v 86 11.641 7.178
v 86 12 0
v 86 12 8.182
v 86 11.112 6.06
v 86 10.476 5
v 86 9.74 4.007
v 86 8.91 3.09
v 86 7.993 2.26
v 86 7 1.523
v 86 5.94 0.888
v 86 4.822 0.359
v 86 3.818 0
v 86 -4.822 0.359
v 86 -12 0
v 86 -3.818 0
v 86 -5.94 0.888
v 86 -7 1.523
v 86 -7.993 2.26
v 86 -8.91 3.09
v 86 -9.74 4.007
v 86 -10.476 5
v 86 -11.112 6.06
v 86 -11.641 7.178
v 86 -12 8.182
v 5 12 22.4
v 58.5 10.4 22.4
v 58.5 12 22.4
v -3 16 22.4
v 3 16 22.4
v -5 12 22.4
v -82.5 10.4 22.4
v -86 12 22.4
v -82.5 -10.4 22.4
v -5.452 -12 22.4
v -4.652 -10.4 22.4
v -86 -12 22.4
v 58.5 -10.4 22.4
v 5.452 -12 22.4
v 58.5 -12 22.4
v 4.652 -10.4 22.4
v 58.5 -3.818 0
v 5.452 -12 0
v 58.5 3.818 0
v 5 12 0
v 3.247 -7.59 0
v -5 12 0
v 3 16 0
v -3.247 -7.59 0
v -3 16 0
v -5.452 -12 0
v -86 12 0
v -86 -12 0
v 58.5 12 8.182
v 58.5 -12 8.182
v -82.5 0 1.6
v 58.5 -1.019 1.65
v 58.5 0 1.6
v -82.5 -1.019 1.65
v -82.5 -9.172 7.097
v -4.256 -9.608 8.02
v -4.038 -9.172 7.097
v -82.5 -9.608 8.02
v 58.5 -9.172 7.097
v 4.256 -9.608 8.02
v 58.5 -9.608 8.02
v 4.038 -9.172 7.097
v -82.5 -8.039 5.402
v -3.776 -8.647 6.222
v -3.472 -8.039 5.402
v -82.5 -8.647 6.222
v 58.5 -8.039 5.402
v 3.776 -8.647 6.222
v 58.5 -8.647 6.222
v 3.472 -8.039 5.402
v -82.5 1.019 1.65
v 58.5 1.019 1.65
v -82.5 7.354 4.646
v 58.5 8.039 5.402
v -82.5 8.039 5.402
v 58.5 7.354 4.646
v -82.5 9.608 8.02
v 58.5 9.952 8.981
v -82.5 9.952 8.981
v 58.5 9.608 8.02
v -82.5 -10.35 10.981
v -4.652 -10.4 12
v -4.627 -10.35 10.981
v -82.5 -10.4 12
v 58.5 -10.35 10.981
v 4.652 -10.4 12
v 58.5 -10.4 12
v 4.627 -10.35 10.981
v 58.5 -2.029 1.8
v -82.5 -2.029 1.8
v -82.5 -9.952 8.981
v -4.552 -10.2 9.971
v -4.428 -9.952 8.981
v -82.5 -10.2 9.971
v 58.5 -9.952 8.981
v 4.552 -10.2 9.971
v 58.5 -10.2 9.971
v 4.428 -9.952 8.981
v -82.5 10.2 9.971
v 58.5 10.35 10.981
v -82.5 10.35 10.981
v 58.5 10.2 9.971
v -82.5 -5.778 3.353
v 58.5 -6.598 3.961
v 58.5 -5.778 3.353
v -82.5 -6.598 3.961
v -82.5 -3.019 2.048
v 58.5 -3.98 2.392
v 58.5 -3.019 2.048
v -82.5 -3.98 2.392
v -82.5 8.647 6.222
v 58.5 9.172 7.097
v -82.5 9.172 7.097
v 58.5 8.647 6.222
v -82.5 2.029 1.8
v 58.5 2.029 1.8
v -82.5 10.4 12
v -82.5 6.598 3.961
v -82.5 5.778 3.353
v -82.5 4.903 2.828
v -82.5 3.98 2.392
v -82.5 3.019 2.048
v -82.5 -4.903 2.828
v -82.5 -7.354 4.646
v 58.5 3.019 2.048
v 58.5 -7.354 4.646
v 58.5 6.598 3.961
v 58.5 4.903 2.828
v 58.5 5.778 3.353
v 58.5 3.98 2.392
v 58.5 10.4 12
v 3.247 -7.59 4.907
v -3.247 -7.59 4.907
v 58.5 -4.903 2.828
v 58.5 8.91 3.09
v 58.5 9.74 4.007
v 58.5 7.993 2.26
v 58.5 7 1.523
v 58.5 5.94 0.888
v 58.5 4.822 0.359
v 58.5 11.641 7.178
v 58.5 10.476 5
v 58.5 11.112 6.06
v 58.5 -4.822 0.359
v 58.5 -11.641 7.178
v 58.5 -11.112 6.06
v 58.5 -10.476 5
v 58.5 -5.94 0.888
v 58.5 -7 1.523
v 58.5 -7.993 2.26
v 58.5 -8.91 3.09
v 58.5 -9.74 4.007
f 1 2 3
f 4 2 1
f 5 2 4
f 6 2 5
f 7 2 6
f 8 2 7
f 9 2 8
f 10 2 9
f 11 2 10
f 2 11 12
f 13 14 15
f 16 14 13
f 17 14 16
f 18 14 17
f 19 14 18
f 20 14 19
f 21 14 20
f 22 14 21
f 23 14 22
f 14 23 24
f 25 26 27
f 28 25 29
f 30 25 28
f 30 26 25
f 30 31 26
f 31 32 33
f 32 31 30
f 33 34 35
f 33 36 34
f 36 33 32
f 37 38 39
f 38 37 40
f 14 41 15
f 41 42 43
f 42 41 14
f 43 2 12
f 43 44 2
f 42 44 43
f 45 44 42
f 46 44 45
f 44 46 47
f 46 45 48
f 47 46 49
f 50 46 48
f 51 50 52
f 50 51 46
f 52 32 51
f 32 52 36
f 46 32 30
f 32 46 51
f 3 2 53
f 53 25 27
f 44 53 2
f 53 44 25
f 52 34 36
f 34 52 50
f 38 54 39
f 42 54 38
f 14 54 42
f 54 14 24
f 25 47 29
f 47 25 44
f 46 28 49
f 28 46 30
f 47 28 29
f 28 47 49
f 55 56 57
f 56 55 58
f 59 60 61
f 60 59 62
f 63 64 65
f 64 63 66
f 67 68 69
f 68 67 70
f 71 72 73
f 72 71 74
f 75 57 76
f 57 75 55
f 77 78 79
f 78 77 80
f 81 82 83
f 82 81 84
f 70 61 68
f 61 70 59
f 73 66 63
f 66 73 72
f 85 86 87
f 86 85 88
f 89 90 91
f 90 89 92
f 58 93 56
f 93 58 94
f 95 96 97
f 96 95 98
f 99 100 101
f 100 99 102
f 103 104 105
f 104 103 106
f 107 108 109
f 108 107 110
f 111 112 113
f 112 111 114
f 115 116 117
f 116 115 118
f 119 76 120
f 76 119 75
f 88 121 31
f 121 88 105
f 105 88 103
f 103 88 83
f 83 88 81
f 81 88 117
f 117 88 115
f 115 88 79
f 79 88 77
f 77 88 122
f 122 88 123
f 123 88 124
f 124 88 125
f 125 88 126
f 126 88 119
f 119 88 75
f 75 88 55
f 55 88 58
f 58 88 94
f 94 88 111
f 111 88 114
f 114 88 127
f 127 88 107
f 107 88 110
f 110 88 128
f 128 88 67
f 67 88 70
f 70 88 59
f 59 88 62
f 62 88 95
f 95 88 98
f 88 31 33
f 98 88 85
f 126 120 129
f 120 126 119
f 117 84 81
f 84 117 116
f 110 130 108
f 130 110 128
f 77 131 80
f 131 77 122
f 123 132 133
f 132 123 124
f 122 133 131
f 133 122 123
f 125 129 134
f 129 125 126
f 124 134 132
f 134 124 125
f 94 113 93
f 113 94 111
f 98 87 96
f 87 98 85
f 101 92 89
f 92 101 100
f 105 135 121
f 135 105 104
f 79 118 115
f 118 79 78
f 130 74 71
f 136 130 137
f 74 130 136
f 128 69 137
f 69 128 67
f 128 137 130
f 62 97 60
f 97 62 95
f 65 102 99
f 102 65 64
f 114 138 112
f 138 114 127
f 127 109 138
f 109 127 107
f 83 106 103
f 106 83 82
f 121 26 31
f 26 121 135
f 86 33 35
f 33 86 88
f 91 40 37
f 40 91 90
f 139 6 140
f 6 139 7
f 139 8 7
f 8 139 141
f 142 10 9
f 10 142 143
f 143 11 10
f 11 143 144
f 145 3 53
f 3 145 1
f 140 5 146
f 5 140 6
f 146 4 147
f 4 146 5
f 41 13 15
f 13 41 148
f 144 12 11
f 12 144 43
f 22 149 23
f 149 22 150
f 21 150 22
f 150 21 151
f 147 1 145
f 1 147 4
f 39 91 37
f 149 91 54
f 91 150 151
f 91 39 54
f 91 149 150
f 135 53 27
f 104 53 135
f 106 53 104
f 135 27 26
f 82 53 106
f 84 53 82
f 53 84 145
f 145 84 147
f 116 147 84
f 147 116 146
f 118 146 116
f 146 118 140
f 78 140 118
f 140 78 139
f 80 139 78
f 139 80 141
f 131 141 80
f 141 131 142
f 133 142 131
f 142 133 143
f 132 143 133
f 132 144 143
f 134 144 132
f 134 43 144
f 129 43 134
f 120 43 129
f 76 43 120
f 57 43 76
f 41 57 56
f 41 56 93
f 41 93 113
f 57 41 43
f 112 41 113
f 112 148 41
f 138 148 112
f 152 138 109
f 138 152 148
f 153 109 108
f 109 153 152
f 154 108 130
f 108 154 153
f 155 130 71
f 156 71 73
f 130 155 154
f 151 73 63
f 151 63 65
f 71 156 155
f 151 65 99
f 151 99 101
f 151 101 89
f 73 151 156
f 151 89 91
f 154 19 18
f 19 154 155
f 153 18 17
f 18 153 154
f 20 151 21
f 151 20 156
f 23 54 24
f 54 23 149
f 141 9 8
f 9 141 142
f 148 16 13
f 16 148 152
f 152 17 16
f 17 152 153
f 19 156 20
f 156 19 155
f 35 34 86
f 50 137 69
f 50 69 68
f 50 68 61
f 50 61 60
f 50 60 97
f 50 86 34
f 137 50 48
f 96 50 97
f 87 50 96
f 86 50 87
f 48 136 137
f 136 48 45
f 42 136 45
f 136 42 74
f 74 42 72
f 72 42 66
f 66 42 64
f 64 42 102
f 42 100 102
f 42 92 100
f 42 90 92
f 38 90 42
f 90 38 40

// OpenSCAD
// file: common.scad
// ============================================================
// common.scad — shared parameters + modules for all designs
// LOCKED PEN SPECIFICATION (do not change)
// ============================================================
PEN_L = 165;      // pen length (mm)
PEN_A = 17;       // pen cross-section minor
PEN_B = 20;       // pen cross-section major (used as diameter envelope)
CLEAR = 0.4;      // fit clearance
WALL  = 1.6;      // minimum wall thickness

$fn = 64;

RCH = PEN_B/2 + CLEAR;   // = 10.4  channel radius
EPS = 0.01;

// --- open-top U trough cut, axis along X, centered at local origin -----------
// Removes a lower half-cylinder of radius r plus a full-width vertical slot
// upward, so the channel is open at the top (no ceiling -> no overhang).
module trough_cut(len, r=RCH, top=80) {
    union() {
        rotate([0,90,0]) cylinder(h=len, r=r, center=true);
        translate([0,0,top/2]) cube([len, 2*r, top], center=true); // slot upward
    }
}

// --- teardrop hole, axis along X, centered at local origin --------------------
// 45-degree self-supporting apex pointing +Z so a horizontal bore can print
// without support.
module teardrop_cut(len, r=RCH) {
    rotate([0,90,0])
        linear_extrude(height=len, center=true)
            union() {
                circle(r=r);
                polygon([[ 0.7071*r, 0.7071*r],
                         [ 0,         1.4142*r],
                         [-0.7071*r,  0.7071*r]]);
            }
}

// --- dial relief: widened open-top pocket at one channel end -----------------
// place at the +X or -X end of a channel so the dose dial clears / can be turned
module dial_relief(end_x, r=RCH+2.2, len=28, top=80) {
    translate([end_x, 0, 0]) trough_cut(len, r, top);
}
// main file
// d3_modular — single-pen module with vertical dovetail joints
// Family: modular units that join together. Slide modules together TOP-DOWN;
// the dovetail is extruded vertically so its angled faces are vertical planes
// (zero printing overhang). Build a 1-, 2-, 3-... wide bank as needed.
// Creative variation: each pen is its own snap-together tile.
include <common.scad>

LBLK = 172;
HBLK = WALL + 2*RCH;              // 22.4
WBLK = 2*RCH + 2*WALL;           // 24.0 single-channel module
ZC = WALL + RCH;

// dovetail trapezoid (cross-section in X-Z), extruded along Z (vertical)
DT_D = 4;        // dovetail depth (into +Y / out of -Y)
DT_W = 10;       // wide face width
DT_N = 6;        // narrow face width  (narrow on the OUTER side -> undercut lock)

module dovetail_solid() {
    // male tongue protruding +Y, prism along Z, trapezoid in X (wide at root)
    translate([0, WBLK/2, 0])
        linear_extrude(height=HBLK)
            polygon([[-DT_W/2, 0], [ DT_W/2, 0],
                     [ DT_N/2, DT_D], [-DT_N/2, DT_D]]);
}
module dovetail_cut() {
    // female pocket on -Y face, matching, with a hair of clearance
    translate([0, -WBLK/2 + EPS, -EPS])
        linear_extrude(height=HBLK + 2*EPS)
            offset(delta=CLEAR)
                polygon([[-DT_W/2, 0], [ DT_W/2, 0],
                         [ DT_N/2, DT_D], [-DT_N/2, DT_D]]);
}

difference() {
    union() {
        translate([0,0,HBLK/2]) cube([LBLK, WBLK, HBLK], center=true);
        dovetail_solid();
    }
    // pen trough + dial relief at +X end
    translate([0, 0, ZC]) trough_cut(PEN_L);
    translate([0, 0, ZC]) dial_relief(PEN_L/2 - 10);
    // female dovetail on opposite face
    dovetail_cut();
}
